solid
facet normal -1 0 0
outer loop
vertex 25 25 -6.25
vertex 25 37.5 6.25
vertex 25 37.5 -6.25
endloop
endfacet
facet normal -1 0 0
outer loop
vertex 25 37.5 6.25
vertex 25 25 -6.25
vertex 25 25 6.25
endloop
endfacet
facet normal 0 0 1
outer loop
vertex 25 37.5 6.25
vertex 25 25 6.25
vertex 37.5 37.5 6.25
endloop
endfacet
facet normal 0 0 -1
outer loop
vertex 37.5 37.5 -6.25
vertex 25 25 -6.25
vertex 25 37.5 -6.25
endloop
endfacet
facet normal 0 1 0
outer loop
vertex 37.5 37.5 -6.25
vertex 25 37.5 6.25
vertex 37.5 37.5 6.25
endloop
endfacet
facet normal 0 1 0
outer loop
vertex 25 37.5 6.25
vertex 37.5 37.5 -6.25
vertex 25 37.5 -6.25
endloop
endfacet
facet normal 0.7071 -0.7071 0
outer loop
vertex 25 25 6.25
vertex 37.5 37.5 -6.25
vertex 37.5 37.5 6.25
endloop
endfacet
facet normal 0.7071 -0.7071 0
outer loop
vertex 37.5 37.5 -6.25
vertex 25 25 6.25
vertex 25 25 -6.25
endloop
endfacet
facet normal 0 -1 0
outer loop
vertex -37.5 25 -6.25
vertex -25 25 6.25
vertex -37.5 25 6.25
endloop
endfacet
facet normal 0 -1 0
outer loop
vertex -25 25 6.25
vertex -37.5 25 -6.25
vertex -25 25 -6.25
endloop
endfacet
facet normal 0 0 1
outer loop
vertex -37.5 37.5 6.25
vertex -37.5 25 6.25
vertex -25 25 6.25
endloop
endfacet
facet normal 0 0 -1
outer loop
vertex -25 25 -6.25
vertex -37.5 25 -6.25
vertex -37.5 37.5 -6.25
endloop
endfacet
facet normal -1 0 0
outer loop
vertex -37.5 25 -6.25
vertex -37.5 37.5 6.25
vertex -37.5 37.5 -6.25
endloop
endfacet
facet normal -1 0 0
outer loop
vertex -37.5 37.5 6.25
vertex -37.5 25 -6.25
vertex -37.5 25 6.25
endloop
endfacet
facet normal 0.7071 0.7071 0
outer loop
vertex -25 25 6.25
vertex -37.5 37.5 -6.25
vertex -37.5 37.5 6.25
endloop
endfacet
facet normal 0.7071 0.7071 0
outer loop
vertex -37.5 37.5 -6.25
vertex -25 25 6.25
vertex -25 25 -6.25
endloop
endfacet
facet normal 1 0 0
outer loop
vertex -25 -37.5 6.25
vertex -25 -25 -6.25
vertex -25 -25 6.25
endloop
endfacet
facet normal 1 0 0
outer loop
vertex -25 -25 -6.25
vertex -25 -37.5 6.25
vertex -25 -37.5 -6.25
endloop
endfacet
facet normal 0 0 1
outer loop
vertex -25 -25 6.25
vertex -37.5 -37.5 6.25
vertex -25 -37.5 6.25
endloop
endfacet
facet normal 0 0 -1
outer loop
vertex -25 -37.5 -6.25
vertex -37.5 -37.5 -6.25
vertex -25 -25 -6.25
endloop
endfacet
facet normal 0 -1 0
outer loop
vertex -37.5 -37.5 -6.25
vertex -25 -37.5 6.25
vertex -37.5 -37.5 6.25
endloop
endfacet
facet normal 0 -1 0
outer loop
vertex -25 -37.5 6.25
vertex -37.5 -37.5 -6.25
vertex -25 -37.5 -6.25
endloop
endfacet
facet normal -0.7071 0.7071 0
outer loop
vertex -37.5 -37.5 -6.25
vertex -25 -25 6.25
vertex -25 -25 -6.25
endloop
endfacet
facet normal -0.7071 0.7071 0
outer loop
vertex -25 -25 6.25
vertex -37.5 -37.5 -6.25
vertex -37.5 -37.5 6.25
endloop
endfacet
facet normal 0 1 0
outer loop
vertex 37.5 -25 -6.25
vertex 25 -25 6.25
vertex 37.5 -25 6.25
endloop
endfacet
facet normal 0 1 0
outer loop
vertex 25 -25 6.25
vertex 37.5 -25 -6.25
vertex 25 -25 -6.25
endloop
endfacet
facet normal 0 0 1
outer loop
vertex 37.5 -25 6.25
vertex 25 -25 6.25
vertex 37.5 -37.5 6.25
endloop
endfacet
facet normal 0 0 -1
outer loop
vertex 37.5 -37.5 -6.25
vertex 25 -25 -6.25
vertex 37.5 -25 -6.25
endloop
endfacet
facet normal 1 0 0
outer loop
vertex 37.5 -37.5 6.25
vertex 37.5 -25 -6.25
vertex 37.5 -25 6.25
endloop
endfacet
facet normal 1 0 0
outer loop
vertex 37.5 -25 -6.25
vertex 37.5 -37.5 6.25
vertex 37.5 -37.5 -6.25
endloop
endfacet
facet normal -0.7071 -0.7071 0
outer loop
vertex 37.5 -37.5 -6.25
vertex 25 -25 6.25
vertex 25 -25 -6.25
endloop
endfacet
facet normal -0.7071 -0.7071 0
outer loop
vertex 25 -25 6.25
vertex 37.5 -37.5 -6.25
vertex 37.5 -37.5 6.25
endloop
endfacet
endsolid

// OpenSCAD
// file: def.scad
block_size_3 = 19;
block_size_4 = 16;
block_size_5 = 14;
block_size_6 = 12.5;
block_size_7 = 11;
block_size_8 = 10;

inf = 1000;

round_radius = 1;
sticker_margin = 2.5;
sticker_round_radius = 0.75;

module _block(size) {
    minkowski() {
        cube([size - round_radius * 2, size - round_radius * 2, size - round_radius * 2], center = true);
        sphere(r = round_radius, $fn = 24);
    }
}

module _selector_0(size) {
    cube([size - 0.2, size - 0.2, size - 0.2], center = true);
}

module _sticker(size) {
    minkowski() {
        cube([size - sticker_margin * 2, size - sticker_margin * 2, 0.1], center = true);
        cylinder(r = sticker_round_radius, h = 0.1, $fn = 24);
    }
}

module _selector_corner_cw(size) {
    difference() {
        cube([size, size, size], center = true);
        rotate([0, -45, 0])
            translate([-inf, -inf, 0])
                cube([inf * 2, inf * 2, inf]);
        rotate([90, 0, 45])
            translate([-inf, -inf, 0])
                cube([inf * 2, inf * 2, inf]);
    }
}

module _selector_corner_ccw(size) {
    difference() {
        cube([size, size, size], center = true);
        rotate([45, 0, 0])
            translate([-inf, -inf, 0])
                cube([inf * 2, inf * 2, inf]);
        rotate([0, -90, -45])
            translate([-inf, -inf, 0])
                cube([inf * 2, inf * 2, inf]);
    }
}

module _selector_edge_cw(size) {
    difference() {
        cube([size, size, size], center = true);
        rotate([90, 0, 45])
            translate([-inf, -inf, 0])
                cube([inf * 2, inf * 2, inf]);
    }
}

module _selector_edge_ccw(size) {
    difference() {
        cube([size, size, size], center = true);
        rotate([0, -90, -45])
            translate([-inf, -inf, 0])
                cube([inf * 2, inf * 2, inf]);
    }
}
// main file
include <def.scad>

for (deg = [0 : 90 : 270])
    rotate([0, 0, deg])
        translate([block_size_6 * 2.5, block_size_6 * 2.5, 0])
            _selector_edge_cw(block_size_6);
